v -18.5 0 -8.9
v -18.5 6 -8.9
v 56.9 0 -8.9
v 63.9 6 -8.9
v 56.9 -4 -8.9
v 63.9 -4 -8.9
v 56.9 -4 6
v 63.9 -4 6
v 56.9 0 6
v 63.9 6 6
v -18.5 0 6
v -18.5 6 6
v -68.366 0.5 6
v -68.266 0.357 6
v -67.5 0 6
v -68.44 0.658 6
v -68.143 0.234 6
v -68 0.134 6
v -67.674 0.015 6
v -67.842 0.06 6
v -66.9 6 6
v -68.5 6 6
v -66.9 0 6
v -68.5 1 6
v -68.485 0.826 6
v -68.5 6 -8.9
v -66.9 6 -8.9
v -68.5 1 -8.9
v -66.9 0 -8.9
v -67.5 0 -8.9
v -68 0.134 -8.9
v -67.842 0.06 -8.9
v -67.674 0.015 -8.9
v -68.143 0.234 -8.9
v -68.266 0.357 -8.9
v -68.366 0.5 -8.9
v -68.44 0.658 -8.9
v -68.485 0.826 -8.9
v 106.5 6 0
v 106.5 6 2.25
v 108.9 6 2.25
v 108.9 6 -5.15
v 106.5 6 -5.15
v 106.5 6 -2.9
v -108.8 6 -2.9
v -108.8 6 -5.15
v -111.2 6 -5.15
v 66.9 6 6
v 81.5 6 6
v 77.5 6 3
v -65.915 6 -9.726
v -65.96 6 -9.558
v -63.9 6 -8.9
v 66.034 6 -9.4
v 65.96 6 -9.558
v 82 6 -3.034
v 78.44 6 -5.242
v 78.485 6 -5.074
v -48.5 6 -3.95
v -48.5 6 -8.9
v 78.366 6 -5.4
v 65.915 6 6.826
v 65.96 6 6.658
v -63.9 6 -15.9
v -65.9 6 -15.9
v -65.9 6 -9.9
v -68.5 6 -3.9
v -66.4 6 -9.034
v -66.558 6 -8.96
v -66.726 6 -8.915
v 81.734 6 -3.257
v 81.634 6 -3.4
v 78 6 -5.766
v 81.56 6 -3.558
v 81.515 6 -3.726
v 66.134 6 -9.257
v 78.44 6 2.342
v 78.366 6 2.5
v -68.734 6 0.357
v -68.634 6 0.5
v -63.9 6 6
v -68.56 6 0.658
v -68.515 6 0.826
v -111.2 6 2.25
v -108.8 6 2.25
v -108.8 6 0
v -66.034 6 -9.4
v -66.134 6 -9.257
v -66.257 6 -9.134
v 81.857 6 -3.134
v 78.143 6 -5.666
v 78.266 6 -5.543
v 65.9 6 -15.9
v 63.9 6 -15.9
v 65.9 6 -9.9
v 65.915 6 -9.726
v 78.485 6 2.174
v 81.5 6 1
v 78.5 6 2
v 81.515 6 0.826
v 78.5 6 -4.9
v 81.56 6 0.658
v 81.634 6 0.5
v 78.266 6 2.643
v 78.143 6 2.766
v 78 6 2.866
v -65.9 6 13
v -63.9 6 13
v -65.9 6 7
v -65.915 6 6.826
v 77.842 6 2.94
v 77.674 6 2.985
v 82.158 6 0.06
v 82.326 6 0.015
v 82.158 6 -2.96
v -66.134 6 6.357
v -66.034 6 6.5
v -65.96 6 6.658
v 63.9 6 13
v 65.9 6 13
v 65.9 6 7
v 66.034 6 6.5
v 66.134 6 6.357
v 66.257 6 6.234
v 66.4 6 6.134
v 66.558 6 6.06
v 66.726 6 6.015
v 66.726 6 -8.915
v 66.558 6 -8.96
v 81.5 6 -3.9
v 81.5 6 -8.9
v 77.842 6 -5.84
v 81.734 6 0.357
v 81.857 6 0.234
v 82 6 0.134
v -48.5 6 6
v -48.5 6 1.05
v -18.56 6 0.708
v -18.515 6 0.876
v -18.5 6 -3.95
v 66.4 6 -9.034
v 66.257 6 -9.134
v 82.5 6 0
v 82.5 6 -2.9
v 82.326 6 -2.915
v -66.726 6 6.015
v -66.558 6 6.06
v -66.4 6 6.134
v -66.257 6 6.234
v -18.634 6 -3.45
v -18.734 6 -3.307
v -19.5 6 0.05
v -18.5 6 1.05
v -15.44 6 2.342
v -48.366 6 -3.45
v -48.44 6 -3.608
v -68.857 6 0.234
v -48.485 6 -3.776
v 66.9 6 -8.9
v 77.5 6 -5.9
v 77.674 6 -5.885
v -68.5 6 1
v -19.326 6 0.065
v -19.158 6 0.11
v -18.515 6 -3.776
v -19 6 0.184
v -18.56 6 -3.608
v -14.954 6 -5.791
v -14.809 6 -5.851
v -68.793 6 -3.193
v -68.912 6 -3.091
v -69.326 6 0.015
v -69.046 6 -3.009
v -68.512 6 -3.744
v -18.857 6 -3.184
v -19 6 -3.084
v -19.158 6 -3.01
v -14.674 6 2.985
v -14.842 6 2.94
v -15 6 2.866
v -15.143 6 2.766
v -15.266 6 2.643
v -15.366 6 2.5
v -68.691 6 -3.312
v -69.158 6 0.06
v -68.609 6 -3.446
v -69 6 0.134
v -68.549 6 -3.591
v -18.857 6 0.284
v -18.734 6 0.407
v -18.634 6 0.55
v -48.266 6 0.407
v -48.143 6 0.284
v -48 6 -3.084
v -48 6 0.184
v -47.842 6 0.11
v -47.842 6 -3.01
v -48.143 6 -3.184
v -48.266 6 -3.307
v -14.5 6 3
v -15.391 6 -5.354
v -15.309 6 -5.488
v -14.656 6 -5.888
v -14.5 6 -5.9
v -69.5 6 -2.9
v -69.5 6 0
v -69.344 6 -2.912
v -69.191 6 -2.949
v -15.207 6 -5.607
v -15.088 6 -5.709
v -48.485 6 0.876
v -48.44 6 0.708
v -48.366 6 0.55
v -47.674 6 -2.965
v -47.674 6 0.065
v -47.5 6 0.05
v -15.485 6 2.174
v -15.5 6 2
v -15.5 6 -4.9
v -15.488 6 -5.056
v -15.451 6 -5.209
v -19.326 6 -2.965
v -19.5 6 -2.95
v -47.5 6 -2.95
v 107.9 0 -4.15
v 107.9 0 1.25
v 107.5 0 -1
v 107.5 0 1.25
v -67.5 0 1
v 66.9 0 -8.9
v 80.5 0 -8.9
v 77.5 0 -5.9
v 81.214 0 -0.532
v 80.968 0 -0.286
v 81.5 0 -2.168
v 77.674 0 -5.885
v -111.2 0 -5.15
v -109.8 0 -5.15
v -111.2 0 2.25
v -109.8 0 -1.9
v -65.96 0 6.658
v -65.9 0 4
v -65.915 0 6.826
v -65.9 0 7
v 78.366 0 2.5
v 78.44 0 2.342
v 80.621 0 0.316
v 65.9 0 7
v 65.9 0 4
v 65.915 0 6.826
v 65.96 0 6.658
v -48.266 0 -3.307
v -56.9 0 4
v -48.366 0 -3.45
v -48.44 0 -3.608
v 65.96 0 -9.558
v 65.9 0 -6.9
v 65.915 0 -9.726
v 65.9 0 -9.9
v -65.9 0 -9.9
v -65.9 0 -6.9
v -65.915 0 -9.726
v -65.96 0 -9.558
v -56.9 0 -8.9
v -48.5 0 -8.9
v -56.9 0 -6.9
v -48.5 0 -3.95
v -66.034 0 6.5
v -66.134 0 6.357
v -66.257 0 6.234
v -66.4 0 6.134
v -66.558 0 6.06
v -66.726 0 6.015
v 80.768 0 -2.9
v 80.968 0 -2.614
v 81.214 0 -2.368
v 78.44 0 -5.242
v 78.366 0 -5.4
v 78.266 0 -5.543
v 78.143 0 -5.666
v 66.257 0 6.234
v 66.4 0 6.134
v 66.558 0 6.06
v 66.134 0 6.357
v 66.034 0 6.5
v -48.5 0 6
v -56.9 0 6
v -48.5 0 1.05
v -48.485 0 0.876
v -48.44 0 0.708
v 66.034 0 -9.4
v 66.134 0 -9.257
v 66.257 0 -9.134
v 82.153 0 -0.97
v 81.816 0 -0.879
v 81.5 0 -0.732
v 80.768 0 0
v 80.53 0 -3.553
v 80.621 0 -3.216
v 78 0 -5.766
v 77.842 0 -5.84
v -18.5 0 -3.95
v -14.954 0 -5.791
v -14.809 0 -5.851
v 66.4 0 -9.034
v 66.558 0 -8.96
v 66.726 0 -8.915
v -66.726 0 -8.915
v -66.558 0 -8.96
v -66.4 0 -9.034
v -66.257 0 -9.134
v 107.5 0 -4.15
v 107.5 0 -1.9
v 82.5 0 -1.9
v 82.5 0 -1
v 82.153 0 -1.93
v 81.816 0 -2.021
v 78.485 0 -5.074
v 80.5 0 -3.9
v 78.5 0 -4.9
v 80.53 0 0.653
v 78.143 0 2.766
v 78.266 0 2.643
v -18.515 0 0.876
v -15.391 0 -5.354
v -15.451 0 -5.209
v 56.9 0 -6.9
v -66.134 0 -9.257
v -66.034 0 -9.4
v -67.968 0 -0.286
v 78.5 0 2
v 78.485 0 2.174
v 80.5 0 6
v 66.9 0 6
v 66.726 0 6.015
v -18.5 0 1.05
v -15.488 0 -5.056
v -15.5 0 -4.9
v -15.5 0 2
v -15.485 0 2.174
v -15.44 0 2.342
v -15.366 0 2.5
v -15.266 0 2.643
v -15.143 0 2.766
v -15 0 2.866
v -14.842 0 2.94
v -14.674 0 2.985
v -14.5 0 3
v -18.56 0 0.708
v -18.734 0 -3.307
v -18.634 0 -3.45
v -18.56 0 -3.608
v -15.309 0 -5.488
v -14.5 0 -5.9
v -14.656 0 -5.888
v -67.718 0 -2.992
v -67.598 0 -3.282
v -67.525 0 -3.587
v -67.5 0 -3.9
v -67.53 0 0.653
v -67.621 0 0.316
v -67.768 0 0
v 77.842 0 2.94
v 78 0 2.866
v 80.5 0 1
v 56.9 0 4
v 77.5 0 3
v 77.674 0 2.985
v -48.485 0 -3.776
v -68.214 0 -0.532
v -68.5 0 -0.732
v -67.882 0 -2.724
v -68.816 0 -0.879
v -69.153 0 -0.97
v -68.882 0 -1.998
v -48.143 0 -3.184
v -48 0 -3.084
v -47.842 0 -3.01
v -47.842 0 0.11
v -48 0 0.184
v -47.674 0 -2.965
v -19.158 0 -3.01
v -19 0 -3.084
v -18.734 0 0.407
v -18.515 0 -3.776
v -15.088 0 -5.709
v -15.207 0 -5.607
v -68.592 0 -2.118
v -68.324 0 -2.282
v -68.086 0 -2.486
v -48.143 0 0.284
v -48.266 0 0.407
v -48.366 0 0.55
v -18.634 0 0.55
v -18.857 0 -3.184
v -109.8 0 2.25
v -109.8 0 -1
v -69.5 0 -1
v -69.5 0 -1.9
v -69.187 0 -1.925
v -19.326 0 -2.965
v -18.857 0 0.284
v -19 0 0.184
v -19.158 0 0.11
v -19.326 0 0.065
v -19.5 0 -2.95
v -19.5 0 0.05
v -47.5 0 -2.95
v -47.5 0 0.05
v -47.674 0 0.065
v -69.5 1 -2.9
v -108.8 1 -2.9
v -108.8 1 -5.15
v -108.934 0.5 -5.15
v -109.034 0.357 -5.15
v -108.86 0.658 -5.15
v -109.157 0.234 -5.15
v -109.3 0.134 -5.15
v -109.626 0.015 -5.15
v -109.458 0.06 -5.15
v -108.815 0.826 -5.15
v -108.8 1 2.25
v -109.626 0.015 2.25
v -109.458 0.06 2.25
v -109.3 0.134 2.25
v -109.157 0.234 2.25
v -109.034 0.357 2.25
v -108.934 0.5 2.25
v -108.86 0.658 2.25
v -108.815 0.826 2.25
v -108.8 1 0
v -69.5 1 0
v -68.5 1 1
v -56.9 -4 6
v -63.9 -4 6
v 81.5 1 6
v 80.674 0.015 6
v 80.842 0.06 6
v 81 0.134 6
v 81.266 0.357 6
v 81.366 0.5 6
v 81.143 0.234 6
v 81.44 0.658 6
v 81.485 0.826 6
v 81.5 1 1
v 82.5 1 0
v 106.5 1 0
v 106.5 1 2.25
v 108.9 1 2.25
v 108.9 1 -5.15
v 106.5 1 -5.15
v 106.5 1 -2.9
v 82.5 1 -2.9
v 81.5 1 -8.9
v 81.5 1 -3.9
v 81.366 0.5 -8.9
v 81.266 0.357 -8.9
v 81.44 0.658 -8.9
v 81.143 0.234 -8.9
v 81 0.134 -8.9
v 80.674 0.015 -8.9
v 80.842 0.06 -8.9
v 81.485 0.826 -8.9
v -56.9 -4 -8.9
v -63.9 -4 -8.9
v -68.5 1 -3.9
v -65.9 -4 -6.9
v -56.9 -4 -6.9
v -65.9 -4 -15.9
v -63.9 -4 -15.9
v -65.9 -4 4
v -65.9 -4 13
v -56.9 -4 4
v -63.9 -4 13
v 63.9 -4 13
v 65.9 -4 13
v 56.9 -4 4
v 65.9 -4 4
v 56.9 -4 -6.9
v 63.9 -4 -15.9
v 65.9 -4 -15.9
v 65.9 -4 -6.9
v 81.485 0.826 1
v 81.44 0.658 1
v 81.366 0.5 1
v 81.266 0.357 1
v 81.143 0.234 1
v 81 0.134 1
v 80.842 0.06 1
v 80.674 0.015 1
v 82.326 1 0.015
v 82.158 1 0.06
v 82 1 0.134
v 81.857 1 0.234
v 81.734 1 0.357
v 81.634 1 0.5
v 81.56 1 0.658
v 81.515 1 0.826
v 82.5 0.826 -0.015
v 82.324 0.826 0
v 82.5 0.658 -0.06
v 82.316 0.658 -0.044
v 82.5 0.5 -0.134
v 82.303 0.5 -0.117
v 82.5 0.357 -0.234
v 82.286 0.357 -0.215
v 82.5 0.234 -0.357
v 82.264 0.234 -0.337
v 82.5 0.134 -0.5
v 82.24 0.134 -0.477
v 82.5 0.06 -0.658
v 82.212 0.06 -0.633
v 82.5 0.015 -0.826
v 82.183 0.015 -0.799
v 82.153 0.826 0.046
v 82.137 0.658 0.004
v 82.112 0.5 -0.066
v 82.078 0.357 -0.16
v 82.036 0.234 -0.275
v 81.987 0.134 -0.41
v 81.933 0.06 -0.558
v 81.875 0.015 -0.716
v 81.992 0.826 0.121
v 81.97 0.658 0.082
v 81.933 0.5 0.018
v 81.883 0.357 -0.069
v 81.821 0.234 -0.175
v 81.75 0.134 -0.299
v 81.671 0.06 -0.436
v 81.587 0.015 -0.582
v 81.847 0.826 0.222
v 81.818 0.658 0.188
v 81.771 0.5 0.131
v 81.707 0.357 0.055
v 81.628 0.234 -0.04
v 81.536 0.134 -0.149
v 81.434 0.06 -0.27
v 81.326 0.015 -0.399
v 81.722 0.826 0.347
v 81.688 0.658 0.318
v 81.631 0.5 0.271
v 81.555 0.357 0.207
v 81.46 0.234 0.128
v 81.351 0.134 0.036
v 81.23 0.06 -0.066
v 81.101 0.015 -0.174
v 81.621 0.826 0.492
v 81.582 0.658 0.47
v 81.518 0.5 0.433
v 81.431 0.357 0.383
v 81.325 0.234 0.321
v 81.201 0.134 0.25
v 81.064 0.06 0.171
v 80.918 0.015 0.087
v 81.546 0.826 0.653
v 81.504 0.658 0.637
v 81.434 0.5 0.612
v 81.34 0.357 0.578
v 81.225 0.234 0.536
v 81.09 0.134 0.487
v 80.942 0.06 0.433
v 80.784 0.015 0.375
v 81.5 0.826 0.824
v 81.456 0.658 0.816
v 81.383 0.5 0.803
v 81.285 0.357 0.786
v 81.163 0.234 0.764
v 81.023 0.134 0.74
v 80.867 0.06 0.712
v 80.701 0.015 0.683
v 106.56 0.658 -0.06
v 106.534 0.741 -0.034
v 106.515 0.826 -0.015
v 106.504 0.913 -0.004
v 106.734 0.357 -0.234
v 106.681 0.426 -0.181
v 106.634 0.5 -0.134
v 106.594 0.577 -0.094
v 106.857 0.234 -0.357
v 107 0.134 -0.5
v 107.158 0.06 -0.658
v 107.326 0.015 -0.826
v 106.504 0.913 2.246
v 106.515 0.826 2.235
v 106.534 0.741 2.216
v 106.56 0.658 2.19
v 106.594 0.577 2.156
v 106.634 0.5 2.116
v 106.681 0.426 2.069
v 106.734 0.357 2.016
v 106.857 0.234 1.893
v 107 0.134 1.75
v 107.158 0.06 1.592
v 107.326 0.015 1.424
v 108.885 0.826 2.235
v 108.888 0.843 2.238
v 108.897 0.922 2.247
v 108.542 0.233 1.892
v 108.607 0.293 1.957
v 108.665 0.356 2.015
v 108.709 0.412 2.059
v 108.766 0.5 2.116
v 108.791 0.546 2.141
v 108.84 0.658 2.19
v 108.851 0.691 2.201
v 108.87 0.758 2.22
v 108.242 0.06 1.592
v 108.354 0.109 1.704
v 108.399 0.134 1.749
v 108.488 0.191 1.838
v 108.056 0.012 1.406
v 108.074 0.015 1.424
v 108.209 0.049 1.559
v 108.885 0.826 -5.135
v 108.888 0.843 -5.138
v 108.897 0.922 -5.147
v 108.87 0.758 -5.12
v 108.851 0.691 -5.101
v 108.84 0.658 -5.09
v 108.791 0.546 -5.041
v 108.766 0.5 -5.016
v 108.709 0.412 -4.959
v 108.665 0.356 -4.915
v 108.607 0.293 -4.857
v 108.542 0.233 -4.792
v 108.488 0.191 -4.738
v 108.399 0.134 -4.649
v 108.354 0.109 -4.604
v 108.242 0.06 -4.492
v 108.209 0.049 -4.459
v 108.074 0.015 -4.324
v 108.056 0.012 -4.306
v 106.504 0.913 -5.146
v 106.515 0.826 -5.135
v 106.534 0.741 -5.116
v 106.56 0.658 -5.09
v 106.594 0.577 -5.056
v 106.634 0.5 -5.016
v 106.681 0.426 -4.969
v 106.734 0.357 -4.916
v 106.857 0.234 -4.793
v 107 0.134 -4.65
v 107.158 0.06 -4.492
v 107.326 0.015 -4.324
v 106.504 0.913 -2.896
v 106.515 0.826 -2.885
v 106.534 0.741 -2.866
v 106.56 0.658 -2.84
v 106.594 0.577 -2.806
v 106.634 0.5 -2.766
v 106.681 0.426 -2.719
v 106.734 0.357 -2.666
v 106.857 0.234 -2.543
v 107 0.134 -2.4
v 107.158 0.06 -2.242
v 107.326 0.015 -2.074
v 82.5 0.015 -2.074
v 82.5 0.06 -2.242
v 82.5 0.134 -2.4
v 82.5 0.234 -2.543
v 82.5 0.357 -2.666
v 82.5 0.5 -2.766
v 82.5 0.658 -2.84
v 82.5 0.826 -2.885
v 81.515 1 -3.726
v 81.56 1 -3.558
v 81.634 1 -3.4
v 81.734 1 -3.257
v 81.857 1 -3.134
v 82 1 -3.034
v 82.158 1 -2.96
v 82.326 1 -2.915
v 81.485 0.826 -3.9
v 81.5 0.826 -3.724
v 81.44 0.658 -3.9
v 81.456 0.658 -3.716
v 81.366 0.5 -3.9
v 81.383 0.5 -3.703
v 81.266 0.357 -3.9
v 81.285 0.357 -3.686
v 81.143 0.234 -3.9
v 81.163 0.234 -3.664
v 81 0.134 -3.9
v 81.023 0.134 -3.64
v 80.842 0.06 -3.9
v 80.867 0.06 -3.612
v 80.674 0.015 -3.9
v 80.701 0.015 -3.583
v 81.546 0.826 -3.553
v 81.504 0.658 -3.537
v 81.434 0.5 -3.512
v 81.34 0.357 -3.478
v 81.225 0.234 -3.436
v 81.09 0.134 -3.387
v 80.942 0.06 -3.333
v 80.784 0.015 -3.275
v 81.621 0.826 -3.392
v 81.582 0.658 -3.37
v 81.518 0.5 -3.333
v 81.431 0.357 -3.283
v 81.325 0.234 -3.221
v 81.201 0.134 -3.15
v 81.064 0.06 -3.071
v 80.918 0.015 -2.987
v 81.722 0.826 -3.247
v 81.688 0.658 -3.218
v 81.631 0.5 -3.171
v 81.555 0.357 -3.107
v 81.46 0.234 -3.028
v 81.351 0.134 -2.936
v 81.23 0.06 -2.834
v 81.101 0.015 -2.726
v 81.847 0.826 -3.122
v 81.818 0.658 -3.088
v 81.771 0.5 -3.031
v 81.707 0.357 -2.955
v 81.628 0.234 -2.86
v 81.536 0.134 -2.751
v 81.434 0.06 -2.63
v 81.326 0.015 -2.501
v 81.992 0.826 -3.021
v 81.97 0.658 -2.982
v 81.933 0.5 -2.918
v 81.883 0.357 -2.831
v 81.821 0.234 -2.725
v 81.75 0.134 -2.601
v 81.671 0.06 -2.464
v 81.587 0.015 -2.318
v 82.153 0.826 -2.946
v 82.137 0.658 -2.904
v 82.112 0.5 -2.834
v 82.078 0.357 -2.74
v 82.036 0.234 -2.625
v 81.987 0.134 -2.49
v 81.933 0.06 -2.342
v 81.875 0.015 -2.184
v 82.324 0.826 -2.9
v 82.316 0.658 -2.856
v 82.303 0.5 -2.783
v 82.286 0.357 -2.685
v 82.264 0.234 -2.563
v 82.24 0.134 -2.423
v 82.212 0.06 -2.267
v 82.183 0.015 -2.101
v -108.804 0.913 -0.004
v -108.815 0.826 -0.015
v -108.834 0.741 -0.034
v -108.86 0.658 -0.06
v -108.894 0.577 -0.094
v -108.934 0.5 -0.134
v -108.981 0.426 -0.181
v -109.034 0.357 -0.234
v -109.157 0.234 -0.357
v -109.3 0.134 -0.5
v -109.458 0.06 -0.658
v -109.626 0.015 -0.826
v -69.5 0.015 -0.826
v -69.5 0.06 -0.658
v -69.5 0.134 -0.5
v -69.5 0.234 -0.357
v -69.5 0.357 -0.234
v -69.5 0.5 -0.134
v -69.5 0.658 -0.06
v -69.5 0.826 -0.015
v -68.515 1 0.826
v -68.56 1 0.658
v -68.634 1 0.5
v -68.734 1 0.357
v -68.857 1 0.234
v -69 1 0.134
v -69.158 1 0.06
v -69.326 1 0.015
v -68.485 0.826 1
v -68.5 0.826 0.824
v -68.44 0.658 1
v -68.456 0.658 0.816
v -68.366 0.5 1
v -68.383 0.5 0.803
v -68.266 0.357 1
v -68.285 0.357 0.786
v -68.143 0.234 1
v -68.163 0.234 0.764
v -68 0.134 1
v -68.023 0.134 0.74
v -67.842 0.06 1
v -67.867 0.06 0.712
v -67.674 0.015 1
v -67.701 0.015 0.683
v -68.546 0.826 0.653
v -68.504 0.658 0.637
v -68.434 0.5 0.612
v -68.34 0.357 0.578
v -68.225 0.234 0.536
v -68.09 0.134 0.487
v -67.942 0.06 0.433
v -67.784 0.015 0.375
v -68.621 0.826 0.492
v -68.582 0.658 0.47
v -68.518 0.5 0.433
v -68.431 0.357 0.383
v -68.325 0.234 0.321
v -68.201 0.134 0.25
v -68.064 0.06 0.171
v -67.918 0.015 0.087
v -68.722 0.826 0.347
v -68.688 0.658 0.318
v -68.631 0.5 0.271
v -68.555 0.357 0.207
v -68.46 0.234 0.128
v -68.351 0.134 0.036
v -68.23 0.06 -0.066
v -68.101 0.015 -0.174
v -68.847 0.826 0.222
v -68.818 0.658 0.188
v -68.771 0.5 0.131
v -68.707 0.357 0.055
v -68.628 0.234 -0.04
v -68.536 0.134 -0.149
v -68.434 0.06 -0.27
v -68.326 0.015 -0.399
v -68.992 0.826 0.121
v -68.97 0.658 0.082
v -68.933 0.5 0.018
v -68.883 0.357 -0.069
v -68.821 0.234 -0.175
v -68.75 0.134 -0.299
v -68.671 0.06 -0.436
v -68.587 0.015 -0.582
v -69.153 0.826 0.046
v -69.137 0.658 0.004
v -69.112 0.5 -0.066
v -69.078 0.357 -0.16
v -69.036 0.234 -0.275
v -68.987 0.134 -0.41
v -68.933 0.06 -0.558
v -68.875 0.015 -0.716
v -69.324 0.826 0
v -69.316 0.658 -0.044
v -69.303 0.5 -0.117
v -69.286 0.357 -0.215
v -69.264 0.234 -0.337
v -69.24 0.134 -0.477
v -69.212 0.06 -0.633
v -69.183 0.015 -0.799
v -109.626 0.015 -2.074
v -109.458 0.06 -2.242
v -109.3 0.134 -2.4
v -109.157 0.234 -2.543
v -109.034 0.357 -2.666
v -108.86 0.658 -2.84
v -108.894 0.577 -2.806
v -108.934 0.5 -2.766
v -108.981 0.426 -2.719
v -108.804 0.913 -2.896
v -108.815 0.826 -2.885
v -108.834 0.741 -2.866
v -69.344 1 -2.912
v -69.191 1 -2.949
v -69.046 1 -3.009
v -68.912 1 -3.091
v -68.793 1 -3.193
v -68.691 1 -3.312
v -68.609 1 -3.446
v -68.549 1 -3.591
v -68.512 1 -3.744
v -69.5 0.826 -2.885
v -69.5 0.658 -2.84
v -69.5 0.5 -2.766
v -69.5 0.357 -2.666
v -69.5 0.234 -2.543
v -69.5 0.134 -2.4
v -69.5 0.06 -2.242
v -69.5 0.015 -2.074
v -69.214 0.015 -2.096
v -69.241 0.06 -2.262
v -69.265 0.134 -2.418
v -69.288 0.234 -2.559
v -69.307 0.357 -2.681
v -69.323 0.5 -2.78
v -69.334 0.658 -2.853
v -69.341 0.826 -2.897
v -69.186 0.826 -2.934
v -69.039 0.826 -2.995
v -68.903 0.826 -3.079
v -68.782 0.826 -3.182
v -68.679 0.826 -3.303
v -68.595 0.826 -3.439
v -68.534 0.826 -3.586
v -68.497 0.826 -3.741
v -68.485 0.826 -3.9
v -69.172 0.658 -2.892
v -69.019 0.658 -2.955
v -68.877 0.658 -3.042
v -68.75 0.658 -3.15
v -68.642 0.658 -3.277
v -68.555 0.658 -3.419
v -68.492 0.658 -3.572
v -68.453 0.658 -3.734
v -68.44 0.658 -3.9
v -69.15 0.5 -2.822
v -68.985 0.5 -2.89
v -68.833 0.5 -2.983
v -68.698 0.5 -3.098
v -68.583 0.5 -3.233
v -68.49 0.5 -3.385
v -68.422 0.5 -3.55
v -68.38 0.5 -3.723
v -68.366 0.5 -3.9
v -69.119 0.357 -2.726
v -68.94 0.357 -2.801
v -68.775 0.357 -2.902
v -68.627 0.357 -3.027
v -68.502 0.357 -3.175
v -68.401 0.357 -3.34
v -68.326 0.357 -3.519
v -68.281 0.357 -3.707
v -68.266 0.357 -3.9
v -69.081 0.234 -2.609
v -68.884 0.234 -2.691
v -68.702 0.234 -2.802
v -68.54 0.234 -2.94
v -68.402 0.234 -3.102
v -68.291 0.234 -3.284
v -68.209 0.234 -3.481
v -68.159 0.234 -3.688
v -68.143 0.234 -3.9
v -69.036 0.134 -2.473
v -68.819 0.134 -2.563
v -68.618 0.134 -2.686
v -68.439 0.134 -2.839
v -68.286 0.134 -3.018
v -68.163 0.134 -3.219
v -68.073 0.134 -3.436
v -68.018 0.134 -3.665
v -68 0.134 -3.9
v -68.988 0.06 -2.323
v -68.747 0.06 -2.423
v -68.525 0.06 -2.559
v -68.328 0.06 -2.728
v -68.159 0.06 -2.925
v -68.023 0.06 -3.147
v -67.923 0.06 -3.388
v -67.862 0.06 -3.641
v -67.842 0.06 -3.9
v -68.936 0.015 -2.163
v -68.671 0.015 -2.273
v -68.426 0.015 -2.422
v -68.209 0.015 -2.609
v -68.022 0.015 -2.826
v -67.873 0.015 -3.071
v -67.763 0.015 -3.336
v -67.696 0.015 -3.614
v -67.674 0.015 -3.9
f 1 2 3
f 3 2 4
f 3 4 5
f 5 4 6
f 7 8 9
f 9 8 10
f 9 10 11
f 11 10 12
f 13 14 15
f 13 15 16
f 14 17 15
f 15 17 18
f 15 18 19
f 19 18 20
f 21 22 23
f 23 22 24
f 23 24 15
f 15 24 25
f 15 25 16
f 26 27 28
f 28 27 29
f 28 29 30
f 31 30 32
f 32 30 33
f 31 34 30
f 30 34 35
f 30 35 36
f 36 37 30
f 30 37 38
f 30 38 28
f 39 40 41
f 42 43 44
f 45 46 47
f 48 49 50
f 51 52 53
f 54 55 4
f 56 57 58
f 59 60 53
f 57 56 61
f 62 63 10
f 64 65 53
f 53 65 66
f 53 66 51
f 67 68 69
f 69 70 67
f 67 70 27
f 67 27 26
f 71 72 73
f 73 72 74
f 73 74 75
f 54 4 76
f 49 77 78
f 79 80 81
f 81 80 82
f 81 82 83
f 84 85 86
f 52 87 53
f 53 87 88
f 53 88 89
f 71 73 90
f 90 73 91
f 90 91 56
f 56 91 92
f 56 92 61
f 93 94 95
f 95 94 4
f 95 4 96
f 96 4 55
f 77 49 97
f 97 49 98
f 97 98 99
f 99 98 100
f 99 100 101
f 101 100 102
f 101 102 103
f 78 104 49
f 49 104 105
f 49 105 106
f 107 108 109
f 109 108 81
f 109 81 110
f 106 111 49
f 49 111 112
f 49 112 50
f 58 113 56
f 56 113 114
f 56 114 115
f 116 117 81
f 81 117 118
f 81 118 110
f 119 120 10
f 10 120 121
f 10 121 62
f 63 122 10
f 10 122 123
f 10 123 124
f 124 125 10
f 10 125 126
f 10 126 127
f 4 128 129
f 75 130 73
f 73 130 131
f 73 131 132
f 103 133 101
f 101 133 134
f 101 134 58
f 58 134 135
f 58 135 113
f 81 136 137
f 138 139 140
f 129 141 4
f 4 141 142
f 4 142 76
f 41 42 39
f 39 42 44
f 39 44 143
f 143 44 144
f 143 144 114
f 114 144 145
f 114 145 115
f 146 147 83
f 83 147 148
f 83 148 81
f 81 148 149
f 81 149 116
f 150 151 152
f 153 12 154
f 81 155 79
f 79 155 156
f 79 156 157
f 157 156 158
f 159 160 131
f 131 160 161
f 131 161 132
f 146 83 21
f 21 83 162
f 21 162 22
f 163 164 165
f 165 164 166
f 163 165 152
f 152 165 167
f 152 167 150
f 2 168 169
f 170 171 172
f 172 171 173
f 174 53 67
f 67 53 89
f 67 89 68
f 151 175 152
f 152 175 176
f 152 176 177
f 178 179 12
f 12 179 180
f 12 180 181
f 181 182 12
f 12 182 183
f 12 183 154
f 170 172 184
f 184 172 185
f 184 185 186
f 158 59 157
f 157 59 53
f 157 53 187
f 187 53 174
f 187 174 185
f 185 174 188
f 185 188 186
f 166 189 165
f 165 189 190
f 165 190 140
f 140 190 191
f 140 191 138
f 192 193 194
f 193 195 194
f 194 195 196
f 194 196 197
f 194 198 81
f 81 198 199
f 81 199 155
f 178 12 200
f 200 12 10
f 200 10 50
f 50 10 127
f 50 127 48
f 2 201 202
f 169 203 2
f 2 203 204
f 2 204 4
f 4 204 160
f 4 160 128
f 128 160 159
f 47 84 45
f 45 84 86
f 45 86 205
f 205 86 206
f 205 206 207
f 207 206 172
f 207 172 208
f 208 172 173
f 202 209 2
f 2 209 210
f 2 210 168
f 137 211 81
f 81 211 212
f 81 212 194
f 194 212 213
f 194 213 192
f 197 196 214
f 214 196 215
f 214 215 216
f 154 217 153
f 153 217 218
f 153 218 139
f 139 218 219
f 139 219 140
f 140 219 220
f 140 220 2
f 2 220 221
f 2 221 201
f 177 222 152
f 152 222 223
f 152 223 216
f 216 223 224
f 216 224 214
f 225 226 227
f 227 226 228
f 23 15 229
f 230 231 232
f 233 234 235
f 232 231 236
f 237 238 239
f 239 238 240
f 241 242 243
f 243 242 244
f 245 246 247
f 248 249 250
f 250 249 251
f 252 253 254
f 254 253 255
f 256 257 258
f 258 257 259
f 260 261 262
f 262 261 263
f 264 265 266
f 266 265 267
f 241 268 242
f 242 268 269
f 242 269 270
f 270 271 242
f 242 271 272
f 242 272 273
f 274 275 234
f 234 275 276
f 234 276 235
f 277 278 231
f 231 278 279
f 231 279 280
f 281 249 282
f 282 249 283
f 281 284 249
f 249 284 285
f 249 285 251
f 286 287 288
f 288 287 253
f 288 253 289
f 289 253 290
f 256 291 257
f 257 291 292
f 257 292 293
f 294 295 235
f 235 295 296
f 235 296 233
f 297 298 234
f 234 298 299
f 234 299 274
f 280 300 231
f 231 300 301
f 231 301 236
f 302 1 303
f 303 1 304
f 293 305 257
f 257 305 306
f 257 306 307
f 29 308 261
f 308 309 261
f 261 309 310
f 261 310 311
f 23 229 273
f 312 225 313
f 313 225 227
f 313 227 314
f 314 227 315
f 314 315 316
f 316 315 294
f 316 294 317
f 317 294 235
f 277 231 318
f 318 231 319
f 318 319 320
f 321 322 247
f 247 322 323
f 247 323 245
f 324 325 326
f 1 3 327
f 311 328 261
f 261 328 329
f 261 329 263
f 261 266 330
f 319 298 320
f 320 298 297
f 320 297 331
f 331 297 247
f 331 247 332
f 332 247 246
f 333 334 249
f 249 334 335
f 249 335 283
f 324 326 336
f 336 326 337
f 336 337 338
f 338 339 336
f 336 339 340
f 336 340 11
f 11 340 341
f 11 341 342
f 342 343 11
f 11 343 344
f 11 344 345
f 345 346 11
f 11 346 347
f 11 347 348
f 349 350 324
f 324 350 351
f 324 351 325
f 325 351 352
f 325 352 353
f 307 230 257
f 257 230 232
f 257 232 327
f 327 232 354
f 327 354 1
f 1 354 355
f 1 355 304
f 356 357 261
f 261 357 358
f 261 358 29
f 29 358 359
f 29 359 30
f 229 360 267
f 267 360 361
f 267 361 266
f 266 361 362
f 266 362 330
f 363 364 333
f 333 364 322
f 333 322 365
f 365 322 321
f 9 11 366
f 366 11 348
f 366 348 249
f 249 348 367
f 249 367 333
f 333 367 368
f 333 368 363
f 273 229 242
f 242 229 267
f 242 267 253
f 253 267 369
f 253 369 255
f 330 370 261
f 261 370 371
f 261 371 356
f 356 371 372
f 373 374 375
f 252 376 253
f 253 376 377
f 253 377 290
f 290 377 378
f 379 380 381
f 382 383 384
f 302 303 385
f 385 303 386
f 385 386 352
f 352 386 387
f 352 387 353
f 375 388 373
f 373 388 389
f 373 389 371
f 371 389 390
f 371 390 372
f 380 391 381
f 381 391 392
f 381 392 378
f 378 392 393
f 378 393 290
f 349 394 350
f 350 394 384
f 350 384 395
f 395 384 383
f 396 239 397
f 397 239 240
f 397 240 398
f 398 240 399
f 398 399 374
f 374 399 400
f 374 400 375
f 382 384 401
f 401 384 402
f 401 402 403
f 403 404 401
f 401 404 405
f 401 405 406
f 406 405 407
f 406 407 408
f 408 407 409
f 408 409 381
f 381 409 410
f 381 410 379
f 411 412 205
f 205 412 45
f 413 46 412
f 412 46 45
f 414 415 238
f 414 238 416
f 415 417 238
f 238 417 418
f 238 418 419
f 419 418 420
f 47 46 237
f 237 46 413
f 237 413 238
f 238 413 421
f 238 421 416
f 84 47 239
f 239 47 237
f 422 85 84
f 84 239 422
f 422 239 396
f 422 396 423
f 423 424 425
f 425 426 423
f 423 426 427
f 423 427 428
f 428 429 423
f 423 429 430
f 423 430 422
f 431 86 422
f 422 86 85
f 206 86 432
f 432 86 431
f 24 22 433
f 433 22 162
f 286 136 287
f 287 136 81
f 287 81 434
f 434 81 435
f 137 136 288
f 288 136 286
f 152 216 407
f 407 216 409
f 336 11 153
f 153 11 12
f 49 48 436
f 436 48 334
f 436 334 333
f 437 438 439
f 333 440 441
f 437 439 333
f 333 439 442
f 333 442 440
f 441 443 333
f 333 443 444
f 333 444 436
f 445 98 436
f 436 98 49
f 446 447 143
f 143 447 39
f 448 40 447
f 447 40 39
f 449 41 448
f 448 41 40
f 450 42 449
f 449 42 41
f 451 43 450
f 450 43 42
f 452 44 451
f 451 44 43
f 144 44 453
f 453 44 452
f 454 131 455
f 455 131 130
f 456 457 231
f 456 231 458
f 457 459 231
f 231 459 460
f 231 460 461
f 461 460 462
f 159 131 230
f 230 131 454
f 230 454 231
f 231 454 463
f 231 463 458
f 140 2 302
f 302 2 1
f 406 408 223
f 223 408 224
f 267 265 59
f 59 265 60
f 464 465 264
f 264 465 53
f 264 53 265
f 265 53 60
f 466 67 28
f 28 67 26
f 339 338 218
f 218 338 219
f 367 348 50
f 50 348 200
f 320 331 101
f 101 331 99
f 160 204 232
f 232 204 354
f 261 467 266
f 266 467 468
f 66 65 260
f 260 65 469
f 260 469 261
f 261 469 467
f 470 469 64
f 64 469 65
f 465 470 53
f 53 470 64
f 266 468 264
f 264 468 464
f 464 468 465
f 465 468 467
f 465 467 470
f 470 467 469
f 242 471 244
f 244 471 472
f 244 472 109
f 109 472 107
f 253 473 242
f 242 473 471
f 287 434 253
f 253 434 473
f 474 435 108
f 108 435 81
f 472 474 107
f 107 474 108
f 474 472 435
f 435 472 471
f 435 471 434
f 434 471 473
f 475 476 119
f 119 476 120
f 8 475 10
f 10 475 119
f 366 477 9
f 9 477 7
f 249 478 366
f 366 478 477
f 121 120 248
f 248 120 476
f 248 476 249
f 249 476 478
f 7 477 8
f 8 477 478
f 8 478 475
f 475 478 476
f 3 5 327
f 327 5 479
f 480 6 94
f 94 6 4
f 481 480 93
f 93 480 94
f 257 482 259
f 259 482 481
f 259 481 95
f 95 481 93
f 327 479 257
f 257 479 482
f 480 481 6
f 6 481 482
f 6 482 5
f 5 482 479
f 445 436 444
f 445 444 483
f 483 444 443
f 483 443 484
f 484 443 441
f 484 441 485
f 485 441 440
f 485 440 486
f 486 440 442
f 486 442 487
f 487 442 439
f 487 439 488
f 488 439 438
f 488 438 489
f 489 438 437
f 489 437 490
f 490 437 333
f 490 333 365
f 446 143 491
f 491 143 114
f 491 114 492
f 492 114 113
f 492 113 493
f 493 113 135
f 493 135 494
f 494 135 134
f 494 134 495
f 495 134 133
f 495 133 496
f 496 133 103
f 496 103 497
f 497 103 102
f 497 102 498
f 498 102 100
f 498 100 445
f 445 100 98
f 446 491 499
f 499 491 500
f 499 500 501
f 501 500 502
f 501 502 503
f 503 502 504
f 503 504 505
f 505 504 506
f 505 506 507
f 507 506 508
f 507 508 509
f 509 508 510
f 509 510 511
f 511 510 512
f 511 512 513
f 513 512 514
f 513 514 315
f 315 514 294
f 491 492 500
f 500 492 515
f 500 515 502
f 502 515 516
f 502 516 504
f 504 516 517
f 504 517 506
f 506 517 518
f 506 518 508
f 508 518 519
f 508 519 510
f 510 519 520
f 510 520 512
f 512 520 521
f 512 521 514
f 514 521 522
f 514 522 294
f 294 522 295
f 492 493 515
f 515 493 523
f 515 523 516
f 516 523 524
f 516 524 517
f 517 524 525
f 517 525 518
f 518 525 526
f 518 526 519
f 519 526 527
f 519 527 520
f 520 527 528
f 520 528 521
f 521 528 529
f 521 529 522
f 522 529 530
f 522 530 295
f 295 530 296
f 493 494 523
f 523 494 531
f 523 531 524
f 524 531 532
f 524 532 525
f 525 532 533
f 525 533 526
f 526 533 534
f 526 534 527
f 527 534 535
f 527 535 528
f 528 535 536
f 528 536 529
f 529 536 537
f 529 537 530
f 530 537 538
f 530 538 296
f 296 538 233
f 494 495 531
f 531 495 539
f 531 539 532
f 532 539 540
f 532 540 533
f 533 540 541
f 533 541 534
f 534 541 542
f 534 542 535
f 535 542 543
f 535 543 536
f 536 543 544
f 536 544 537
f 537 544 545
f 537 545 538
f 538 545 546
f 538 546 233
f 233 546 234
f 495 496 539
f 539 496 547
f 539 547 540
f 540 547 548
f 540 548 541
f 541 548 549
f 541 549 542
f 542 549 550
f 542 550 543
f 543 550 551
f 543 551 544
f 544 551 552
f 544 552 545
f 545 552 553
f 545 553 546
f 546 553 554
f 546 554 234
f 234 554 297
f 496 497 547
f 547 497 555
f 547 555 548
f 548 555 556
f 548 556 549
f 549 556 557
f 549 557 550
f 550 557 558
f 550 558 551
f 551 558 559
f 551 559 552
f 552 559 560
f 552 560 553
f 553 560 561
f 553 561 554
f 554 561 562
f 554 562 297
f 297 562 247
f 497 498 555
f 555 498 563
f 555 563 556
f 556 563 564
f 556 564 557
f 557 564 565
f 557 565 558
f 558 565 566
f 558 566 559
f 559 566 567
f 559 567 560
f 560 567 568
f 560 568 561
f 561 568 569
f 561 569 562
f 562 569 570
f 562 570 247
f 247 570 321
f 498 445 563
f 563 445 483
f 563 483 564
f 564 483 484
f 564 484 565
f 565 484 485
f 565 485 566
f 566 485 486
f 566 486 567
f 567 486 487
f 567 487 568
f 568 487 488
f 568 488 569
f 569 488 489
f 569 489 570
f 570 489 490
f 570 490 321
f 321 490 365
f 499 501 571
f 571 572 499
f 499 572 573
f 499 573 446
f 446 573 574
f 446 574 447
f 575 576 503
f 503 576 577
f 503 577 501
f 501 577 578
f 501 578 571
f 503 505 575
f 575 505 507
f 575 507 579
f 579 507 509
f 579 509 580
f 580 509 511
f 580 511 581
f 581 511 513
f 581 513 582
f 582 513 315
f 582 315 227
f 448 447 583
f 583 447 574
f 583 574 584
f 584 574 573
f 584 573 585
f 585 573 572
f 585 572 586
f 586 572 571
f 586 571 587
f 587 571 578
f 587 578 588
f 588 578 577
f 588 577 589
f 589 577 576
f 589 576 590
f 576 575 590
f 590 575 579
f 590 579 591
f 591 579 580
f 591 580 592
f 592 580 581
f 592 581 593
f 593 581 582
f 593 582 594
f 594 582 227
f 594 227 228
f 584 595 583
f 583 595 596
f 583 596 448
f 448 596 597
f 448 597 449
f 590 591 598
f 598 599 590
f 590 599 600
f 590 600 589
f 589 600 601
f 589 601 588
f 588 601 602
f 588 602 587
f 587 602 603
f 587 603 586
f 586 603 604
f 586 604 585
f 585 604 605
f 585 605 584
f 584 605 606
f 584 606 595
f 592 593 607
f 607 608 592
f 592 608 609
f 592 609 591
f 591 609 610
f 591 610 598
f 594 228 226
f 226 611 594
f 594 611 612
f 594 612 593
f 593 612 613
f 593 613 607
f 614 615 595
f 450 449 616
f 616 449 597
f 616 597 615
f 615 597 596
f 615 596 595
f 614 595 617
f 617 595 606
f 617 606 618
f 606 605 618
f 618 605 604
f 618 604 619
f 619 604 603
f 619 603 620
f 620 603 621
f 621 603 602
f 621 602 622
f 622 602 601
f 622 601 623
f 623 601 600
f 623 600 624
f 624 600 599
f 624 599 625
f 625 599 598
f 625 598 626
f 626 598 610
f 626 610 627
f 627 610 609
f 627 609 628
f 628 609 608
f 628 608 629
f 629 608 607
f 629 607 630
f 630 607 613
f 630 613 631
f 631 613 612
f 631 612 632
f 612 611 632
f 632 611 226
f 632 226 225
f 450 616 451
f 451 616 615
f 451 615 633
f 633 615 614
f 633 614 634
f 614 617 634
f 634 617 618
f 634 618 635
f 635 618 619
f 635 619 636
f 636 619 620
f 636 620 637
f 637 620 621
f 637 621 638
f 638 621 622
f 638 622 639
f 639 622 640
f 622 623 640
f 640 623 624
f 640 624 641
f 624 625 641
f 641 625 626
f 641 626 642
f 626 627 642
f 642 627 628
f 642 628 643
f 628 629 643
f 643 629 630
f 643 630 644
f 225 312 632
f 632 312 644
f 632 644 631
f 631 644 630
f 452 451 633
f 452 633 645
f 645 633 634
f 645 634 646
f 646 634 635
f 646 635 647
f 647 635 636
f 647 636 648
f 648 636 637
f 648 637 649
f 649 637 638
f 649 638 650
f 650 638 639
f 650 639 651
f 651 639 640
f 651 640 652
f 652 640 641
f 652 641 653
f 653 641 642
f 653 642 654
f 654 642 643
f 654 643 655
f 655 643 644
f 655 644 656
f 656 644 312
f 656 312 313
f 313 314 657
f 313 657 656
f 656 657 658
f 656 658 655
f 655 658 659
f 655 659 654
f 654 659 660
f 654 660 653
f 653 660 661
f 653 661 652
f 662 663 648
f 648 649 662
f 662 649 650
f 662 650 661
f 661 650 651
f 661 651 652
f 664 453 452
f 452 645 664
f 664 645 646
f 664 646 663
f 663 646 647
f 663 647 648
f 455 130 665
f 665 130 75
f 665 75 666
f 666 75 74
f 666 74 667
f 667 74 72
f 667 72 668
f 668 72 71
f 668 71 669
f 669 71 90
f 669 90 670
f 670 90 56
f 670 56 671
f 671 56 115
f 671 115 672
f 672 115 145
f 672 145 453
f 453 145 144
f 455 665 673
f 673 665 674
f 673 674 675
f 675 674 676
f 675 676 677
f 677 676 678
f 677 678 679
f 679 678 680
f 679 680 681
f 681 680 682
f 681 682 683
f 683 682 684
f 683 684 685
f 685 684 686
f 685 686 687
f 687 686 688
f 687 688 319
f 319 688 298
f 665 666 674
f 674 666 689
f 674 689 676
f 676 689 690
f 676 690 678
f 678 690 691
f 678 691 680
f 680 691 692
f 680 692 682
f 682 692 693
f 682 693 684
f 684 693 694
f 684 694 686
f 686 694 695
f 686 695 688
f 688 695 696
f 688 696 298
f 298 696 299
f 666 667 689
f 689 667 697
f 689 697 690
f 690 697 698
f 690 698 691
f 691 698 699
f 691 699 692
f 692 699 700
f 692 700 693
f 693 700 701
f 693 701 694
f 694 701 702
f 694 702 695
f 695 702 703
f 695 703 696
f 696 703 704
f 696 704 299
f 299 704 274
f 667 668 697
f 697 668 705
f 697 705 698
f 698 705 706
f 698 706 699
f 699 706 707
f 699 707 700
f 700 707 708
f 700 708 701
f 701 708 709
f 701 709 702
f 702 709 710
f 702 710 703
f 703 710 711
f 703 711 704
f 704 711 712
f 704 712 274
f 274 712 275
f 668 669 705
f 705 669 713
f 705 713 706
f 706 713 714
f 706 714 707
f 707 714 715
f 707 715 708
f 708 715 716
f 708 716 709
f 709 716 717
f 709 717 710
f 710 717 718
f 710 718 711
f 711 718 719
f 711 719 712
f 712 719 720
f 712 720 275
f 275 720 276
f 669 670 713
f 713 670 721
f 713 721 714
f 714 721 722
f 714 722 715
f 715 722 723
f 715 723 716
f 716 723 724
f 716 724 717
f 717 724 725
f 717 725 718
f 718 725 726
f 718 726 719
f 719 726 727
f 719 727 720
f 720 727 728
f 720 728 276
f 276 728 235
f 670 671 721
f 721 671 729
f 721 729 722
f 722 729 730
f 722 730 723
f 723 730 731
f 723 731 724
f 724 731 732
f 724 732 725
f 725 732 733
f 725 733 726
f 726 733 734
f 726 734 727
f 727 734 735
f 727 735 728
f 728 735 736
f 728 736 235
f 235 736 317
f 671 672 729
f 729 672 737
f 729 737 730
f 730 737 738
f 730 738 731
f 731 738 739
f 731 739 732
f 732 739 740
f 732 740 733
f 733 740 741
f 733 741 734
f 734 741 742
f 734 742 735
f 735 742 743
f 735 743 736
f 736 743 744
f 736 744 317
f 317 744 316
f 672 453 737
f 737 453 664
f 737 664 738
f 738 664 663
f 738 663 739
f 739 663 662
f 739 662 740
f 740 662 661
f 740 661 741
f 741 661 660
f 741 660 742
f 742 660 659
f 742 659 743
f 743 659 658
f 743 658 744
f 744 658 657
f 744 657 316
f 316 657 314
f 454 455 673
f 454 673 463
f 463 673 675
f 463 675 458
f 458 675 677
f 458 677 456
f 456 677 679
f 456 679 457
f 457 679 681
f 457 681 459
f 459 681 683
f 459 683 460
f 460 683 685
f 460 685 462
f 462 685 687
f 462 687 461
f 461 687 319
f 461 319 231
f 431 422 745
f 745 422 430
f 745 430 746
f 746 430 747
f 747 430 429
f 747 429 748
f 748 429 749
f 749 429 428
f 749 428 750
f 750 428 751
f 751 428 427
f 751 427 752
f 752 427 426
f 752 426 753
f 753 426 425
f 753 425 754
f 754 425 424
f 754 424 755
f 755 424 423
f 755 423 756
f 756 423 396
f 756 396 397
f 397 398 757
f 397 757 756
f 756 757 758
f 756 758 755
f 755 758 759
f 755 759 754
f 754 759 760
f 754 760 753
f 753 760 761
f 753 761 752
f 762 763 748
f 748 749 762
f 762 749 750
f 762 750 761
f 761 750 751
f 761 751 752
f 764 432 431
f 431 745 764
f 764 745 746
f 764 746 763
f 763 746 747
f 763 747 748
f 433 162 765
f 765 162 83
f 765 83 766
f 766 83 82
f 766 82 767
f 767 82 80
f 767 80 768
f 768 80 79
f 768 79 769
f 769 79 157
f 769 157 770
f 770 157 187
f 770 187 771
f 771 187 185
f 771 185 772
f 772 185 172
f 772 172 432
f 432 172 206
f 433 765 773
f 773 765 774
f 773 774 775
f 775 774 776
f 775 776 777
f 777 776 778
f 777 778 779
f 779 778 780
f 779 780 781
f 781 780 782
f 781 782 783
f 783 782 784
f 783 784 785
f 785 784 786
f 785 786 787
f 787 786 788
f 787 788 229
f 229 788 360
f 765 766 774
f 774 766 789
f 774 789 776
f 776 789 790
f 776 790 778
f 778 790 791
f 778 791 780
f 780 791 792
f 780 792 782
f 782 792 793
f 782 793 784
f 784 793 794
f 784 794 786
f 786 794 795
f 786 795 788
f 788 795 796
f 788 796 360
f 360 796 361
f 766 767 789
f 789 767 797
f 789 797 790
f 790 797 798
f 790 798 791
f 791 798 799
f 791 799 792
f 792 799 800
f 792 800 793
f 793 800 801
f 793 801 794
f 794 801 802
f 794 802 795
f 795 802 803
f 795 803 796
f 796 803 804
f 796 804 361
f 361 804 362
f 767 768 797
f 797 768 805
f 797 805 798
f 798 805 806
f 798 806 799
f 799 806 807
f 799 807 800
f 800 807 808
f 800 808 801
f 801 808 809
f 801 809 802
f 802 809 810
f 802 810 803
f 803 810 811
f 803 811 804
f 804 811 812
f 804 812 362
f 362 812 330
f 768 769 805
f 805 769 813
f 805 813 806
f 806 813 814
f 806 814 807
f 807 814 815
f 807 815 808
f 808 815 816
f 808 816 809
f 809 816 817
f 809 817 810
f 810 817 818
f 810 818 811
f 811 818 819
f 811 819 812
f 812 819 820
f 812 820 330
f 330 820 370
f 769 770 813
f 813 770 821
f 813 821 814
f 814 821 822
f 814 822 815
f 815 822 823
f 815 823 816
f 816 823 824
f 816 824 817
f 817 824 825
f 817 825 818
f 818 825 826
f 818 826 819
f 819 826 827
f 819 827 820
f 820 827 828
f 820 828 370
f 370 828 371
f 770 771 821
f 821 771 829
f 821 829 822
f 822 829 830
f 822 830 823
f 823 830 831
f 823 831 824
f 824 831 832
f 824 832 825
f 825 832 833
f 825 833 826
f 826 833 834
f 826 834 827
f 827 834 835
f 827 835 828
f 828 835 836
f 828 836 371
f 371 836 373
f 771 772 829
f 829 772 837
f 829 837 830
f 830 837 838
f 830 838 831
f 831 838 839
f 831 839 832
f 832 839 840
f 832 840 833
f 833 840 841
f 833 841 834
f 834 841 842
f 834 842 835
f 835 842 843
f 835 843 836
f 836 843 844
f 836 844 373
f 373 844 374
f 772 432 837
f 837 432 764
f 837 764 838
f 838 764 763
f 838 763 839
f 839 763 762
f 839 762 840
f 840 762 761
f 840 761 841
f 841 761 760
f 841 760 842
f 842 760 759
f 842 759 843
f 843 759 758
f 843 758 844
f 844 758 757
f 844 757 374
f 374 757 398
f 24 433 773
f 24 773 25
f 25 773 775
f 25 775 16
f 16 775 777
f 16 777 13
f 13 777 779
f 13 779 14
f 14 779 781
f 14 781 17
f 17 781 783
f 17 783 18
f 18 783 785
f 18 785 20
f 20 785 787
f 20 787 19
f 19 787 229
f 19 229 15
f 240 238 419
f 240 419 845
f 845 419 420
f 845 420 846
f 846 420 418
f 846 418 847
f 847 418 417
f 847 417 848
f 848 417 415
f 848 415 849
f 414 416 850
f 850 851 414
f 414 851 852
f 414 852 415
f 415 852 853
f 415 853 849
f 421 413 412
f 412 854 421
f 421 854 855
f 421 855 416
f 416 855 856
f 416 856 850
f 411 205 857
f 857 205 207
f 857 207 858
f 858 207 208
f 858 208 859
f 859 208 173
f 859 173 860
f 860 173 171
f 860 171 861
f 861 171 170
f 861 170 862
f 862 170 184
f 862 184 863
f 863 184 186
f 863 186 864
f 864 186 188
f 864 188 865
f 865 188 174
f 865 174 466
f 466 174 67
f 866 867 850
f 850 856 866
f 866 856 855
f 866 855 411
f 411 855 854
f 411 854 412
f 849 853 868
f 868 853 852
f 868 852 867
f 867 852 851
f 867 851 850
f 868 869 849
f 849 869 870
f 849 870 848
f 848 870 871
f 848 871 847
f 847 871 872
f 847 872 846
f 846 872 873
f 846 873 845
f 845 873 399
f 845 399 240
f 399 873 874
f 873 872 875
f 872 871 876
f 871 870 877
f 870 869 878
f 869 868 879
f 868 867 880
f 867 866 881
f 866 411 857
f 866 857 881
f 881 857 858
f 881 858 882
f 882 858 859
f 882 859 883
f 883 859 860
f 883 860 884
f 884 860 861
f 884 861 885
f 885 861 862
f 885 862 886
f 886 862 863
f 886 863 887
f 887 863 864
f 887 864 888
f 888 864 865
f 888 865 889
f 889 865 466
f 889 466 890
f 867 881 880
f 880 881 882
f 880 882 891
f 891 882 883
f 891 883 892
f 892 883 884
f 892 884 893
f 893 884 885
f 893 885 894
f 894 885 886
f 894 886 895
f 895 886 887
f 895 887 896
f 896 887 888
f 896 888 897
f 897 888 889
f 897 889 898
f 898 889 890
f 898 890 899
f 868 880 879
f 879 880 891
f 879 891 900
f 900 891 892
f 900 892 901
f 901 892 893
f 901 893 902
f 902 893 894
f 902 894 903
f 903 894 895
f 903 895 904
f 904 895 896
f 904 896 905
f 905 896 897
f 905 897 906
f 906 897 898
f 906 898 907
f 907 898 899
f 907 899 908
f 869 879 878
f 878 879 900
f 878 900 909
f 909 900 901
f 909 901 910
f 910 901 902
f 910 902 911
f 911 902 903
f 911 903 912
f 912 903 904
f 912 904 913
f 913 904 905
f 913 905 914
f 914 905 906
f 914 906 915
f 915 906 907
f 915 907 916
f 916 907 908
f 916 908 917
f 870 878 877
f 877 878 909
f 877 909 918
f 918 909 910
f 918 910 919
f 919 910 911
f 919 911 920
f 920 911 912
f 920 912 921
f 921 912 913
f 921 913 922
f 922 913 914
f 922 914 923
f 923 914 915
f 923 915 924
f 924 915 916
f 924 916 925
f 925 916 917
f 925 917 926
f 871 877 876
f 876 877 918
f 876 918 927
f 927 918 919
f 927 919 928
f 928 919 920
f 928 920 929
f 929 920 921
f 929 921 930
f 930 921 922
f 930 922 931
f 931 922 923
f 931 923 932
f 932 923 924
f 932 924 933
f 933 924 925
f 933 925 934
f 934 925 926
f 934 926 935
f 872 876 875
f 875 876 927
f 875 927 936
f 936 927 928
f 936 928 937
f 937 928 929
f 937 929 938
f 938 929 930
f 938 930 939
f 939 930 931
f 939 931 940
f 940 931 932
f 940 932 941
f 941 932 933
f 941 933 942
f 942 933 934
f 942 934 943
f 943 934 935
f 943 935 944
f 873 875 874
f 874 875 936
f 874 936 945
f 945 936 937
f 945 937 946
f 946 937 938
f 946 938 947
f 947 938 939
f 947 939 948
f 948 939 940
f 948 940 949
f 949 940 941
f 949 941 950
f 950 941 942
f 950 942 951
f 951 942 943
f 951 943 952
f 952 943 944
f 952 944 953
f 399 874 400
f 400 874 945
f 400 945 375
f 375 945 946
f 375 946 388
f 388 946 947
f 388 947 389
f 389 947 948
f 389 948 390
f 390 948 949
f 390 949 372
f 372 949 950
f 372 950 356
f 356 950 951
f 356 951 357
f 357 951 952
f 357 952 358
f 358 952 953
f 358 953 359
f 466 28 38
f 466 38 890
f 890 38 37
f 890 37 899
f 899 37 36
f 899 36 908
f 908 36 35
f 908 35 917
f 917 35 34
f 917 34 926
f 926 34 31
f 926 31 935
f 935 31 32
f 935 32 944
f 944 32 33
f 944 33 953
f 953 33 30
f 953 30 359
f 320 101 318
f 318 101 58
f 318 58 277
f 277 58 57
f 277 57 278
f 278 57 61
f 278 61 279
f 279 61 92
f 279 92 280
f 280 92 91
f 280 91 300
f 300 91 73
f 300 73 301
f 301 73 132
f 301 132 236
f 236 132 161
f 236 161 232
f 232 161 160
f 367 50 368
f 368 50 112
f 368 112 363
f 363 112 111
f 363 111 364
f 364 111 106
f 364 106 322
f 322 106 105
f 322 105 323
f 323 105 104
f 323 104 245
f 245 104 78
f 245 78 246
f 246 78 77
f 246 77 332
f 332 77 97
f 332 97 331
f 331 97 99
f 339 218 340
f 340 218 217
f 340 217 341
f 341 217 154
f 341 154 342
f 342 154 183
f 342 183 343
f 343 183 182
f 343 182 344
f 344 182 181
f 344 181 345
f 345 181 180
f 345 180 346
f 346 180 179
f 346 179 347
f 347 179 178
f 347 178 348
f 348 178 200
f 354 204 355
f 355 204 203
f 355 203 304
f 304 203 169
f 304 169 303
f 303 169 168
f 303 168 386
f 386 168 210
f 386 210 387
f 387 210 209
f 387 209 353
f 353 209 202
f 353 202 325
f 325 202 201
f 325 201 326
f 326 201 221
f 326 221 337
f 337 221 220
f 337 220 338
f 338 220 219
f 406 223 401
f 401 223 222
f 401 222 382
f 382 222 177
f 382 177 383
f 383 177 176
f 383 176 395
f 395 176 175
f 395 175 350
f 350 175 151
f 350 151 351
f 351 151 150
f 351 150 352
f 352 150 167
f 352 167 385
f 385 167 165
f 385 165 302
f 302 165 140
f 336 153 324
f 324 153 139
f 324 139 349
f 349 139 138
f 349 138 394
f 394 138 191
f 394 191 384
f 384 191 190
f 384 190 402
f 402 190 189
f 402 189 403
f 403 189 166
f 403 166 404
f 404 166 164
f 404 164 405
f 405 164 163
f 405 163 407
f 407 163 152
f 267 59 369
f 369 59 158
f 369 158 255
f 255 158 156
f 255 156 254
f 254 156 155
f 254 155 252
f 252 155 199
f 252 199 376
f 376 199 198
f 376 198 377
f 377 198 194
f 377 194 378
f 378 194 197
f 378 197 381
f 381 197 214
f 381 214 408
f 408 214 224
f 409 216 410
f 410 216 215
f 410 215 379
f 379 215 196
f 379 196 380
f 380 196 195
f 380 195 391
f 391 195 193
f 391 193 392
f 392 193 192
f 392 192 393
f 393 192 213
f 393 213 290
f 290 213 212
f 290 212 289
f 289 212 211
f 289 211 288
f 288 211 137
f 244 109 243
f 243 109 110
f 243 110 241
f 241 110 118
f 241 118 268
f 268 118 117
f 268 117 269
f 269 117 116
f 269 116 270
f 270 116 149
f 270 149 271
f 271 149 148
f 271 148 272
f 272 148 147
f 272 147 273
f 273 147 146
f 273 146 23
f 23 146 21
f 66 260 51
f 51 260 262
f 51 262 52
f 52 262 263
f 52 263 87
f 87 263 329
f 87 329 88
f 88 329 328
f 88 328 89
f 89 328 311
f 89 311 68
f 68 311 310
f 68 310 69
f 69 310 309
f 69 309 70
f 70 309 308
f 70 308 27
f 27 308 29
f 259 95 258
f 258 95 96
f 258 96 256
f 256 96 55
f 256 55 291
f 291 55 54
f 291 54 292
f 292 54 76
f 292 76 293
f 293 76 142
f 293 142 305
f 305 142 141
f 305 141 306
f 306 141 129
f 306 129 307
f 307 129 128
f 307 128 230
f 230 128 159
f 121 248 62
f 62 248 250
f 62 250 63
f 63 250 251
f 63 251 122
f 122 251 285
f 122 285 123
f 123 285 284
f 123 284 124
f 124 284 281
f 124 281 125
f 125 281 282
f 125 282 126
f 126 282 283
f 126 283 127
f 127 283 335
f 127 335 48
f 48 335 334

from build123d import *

# Parameters (mm, degrees)
SKETCH1_W           = 94
SKETCH1_H           = 8.9
BOSS_EXTRUDE1_DEPTH = 6
BOSS_EXTRUDE2_DEPTH = 10
FILLET1_R           = 1


with BuildPart() as part:
    # Sketch1 → Boss-Extrude1 (new body)
    with BuildSketch(Plane(origin=(0, 0, 0), x_dir=(1, 0, 0), z_dir=(0, 1, 0))):
        Polygon((106.5, 2.9), (106.5, 5.15), (108.9, 5.15), (108.9, -2.25), (106.5, -2.25), (106.5, 0), (81.5, 0), (81.5, -6), (-18.5, -6), (-18.5, -0.05), (-48.5, -0.05), (-48.5, -6), (-68.5, -6), (-68.5, 0), (-108.8, 0), (-108.8, -2.25), (-111.2, -2.25), (-111.2, 5.15), (-108.8, 5.15), (-108.8, 2.9), (-68.5, 2.9), (-68.5, 8.9), (-48.5, 8.9), (-48.5, 2.95), (-18.5, 2.95), (-18.5, 8.9), (81.5, 8.9), (81.5, 2.9), align=None)
        with Locations((31.5, 1.45)):
            Rectangle(SKETCH1_W, SKETCH1_H, mode=Mode.SUBTRACT)
    extrude(amount=BOSS_EXTRUDE1_DEPTH)

    # Sketch2 → Boss-Extrude2 (add)
    with BuildSketch(Plane(origin=(0, 6, 0), x_dir=(1, 0, 0), z_dir=(0, 1, 0))):
        Polygon((-65.9, 6.9), (-65.9, 15.9), (-63.9, 15.9), (-63.9, 8.9), (-56.9, 8.9), (-56.9, 6.9), align=None)
        Polygon((-65.9, -4), (-56.9, -4), (-56.9, -6), (-63.9, -6), (-63.9, -13), (-65.9, -13), align=None)
        Polygon((65.9, -13), (65.9, -4), (56.9, -4), (56.9, -6), (63.9, -6), (63.9, -13), align=None)
        Polygon((56.9, 6.9), (65.9, 6.9), (65.9, 15.9), (63.9, 15.9), (63.9, 8.9), (56.9, 8.9), align=None)
    extrude(amount=-BOSS_EXTRUDE2_DEPTH)

    # Fillet1
    fillet1_edges = [part.edges().sort_by_distance(p)[0] for p in [
        (-68.5, 0, 3),
        (-68.5, 0, -5.9),
        (-108.8, 0, -4.025),
        (-108.8, 0, 1.125),
        (-68.5, 3, 0),
        (-68.5, 3, -2.9),
        (-88.65, 0, 0),
        (-88.65, 0, -2.9),
        (81.5, 0, -5.9),
        (81.5, 0, 3),
        (78.5, 3, -5.9),
        (78.5, 3, 3),
        (-15.5, 3, 3),
        (-15.5, 3, -5.9),
        (-18.5, 3, -2.95),
        (-18.5, 3, 0.05),
        (-48.5, 3, -2.95),
        (-48.5, 3, 0.05),
        (-65.9, 3, 6),
        (-65.9, 3, -8.9),
        (65.9, 3, -8.9),
        (65.9, 3, 6),
        (81.5, 3, -2.9),
        (81.5, 3, 0),
        (106.5, 0, 1.125),
        (107.7, 0, 2.25),
        (108.9, 0, -1.45),
        (107.7, 0, -5.15),
        (106.5, 0, -4.025),
        (94, 0, -2.9),
        (94, 0, 0),
    ]]
    fillet(fillet1_edges, radius=FILLET1_R)


solid = part.part
